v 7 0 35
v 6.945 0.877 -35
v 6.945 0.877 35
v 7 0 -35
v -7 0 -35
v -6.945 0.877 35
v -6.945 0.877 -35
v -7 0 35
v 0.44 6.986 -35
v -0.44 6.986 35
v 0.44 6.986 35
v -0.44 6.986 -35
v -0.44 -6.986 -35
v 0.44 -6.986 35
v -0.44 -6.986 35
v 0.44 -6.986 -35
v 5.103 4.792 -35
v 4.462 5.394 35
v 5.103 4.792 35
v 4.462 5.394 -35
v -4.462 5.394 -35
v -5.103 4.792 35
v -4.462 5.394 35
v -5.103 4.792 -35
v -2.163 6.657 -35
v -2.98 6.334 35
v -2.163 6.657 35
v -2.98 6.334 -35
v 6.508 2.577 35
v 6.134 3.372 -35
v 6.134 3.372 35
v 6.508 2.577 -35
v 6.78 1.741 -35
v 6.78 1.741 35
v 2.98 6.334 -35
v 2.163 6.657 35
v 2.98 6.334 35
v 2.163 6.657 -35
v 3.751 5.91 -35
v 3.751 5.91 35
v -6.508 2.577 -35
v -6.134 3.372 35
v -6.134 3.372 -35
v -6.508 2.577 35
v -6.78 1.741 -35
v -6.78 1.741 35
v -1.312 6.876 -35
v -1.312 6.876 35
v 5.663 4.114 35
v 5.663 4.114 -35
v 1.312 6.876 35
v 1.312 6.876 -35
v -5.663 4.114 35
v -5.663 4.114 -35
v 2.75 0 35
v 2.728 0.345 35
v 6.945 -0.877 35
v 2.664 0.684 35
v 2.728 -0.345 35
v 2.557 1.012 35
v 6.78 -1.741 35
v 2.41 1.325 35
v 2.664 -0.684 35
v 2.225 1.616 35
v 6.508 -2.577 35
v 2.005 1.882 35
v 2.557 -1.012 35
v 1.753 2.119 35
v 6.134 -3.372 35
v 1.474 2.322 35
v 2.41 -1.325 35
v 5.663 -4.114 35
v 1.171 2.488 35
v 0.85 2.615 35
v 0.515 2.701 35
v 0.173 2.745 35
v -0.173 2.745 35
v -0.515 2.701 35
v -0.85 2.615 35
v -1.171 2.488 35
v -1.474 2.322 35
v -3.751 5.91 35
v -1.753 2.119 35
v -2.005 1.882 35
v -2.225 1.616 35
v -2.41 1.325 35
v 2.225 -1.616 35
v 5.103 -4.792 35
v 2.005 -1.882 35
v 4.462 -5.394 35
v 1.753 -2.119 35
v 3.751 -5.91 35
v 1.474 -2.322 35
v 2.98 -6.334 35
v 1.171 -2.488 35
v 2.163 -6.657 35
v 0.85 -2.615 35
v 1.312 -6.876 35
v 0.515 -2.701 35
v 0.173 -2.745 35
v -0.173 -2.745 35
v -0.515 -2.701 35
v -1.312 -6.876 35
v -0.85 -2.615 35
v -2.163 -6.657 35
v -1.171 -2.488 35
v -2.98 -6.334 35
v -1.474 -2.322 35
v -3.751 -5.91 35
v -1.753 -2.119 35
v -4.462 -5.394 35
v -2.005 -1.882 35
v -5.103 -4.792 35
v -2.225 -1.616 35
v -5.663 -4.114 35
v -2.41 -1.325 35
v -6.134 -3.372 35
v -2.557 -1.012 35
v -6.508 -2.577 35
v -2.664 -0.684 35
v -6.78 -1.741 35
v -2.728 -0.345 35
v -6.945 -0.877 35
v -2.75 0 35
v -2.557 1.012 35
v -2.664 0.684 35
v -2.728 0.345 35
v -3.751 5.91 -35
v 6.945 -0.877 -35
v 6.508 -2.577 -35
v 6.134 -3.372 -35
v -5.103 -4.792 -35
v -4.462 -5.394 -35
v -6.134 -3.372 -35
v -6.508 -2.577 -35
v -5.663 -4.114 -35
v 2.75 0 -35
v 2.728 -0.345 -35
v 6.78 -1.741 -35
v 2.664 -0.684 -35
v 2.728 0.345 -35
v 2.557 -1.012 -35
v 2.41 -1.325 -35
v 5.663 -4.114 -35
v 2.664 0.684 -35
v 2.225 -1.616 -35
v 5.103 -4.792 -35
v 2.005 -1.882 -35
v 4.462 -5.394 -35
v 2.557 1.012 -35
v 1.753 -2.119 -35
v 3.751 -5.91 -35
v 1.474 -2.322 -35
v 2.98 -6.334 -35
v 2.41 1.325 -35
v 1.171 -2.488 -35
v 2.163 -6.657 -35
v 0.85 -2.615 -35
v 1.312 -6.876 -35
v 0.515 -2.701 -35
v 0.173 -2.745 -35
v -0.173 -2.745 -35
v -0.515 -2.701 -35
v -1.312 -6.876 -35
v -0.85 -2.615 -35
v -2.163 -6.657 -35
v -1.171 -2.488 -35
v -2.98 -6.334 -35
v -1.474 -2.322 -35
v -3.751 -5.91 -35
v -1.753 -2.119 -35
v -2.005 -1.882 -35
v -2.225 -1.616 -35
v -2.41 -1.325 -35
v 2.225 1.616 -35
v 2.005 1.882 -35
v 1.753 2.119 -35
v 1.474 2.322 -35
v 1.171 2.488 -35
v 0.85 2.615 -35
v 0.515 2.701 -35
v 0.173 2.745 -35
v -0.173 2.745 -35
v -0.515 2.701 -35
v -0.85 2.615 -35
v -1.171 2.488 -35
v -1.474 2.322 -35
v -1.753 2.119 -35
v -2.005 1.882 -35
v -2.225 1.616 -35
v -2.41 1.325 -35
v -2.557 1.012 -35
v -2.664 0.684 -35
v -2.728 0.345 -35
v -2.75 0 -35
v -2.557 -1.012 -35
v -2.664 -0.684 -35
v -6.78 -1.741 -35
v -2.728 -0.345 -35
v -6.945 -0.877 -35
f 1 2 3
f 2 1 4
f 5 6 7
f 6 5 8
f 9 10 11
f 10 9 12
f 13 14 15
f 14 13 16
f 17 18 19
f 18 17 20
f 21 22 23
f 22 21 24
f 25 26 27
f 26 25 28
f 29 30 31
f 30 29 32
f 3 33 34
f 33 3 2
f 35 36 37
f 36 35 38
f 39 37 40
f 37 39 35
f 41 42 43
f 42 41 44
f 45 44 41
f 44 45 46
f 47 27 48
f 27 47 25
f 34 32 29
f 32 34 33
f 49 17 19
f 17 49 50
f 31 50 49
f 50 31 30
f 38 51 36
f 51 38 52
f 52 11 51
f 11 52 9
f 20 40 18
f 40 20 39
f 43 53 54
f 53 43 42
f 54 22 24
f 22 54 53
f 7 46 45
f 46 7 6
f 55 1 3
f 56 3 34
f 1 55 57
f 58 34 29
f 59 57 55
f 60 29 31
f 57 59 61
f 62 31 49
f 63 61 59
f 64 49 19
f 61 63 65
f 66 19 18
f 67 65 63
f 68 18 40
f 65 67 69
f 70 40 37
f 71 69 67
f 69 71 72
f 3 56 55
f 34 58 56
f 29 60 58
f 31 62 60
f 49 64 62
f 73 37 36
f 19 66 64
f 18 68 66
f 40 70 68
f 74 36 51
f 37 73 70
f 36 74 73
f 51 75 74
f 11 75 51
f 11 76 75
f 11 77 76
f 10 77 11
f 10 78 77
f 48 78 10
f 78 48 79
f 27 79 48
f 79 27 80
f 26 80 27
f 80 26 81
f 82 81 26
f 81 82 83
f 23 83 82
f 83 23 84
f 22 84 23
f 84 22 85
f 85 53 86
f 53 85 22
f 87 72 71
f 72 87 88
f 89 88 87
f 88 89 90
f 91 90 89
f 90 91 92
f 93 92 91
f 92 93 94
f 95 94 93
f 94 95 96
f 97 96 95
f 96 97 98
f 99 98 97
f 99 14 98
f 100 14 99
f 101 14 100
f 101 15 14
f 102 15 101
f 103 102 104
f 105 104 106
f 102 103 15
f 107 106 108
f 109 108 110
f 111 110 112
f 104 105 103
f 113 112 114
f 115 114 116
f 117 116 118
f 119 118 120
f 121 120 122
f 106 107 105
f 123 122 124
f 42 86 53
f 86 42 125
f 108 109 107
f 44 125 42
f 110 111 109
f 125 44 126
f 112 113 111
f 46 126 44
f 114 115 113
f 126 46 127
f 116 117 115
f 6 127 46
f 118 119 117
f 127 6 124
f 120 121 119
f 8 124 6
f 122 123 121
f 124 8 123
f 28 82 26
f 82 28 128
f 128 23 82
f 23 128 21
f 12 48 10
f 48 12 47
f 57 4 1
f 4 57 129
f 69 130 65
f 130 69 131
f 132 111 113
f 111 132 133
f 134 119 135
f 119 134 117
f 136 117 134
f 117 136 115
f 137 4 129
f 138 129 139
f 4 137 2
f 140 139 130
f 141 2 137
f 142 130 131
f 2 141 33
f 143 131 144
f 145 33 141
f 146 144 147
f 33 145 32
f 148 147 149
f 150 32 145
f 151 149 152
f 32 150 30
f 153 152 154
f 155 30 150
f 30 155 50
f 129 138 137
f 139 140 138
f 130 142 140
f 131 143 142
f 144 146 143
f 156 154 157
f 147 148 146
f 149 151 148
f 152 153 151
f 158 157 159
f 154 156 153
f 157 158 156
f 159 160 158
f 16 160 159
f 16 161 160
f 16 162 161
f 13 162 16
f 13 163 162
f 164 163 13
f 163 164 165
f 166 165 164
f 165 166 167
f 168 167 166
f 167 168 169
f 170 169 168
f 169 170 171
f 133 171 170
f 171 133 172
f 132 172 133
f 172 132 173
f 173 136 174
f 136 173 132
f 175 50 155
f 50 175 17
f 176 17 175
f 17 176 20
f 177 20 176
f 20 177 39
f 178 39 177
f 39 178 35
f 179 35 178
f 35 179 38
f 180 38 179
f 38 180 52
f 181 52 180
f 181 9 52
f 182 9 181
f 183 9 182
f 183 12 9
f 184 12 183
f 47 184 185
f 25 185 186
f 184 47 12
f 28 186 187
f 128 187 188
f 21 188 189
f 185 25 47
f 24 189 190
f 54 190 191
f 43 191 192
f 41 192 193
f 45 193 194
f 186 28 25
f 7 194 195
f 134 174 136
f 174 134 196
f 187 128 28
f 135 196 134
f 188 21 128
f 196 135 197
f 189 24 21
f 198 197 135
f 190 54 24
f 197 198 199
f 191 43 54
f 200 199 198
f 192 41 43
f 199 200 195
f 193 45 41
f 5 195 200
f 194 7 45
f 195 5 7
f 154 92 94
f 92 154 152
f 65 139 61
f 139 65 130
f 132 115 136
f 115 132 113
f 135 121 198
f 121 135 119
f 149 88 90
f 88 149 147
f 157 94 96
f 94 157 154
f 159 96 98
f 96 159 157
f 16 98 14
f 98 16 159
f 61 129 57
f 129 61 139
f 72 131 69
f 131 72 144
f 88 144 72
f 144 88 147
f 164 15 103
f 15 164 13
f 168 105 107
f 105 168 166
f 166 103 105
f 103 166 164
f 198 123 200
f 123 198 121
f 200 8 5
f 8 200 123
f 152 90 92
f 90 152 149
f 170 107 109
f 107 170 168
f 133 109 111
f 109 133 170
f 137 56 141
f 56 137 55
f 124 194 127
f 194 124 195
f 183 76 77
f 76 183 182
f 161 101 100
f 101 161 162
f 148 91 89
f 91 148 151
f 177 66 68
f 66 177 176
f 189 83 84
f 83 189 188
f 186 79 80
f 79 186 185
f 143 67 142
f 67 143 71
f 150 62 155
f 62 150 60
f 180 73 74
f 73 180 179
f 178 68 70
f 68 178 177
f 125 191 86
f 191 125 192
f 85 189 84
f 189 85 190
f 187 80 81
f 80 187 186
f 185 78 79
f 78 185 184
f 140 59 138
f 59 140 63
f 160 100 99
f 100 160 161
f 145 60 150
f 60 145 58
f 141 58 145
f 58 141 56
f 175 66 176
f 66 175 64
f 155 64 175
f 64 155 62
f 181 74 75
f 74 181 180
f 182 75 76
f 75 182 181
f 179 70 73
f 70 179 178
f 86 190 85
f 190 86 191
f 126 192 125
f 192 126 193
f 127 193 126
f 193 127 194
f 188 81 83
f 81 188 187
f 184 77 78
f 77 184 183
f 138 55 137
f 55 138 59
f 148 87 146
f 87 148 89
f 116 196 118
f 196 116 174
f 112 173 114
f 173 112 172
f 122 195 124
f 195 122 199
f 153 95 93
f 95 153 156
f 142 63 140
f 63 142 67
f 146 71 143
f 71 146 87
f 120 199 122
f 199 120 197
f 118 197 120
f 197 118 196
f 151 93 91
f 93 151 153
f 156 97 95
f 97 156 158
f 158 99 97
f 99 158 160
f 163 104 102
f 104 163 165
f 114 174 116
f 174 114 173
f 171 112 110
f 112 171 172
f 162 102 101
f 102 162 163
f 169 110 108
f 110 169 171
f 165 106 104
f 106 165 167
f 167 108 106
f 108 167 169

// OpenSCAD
$fn = 50;


difference() {
	union() {
		translate(v = [0, 0, -35.0000000000]) {
			cylinder(h = 70, r = 7.0000000000);
		}
	}
	union() {
		translate(v = [0, 0, -100.0000000000]) {
			cylinder(h = 200, r = 2.7500000000);
		}
	}
}
